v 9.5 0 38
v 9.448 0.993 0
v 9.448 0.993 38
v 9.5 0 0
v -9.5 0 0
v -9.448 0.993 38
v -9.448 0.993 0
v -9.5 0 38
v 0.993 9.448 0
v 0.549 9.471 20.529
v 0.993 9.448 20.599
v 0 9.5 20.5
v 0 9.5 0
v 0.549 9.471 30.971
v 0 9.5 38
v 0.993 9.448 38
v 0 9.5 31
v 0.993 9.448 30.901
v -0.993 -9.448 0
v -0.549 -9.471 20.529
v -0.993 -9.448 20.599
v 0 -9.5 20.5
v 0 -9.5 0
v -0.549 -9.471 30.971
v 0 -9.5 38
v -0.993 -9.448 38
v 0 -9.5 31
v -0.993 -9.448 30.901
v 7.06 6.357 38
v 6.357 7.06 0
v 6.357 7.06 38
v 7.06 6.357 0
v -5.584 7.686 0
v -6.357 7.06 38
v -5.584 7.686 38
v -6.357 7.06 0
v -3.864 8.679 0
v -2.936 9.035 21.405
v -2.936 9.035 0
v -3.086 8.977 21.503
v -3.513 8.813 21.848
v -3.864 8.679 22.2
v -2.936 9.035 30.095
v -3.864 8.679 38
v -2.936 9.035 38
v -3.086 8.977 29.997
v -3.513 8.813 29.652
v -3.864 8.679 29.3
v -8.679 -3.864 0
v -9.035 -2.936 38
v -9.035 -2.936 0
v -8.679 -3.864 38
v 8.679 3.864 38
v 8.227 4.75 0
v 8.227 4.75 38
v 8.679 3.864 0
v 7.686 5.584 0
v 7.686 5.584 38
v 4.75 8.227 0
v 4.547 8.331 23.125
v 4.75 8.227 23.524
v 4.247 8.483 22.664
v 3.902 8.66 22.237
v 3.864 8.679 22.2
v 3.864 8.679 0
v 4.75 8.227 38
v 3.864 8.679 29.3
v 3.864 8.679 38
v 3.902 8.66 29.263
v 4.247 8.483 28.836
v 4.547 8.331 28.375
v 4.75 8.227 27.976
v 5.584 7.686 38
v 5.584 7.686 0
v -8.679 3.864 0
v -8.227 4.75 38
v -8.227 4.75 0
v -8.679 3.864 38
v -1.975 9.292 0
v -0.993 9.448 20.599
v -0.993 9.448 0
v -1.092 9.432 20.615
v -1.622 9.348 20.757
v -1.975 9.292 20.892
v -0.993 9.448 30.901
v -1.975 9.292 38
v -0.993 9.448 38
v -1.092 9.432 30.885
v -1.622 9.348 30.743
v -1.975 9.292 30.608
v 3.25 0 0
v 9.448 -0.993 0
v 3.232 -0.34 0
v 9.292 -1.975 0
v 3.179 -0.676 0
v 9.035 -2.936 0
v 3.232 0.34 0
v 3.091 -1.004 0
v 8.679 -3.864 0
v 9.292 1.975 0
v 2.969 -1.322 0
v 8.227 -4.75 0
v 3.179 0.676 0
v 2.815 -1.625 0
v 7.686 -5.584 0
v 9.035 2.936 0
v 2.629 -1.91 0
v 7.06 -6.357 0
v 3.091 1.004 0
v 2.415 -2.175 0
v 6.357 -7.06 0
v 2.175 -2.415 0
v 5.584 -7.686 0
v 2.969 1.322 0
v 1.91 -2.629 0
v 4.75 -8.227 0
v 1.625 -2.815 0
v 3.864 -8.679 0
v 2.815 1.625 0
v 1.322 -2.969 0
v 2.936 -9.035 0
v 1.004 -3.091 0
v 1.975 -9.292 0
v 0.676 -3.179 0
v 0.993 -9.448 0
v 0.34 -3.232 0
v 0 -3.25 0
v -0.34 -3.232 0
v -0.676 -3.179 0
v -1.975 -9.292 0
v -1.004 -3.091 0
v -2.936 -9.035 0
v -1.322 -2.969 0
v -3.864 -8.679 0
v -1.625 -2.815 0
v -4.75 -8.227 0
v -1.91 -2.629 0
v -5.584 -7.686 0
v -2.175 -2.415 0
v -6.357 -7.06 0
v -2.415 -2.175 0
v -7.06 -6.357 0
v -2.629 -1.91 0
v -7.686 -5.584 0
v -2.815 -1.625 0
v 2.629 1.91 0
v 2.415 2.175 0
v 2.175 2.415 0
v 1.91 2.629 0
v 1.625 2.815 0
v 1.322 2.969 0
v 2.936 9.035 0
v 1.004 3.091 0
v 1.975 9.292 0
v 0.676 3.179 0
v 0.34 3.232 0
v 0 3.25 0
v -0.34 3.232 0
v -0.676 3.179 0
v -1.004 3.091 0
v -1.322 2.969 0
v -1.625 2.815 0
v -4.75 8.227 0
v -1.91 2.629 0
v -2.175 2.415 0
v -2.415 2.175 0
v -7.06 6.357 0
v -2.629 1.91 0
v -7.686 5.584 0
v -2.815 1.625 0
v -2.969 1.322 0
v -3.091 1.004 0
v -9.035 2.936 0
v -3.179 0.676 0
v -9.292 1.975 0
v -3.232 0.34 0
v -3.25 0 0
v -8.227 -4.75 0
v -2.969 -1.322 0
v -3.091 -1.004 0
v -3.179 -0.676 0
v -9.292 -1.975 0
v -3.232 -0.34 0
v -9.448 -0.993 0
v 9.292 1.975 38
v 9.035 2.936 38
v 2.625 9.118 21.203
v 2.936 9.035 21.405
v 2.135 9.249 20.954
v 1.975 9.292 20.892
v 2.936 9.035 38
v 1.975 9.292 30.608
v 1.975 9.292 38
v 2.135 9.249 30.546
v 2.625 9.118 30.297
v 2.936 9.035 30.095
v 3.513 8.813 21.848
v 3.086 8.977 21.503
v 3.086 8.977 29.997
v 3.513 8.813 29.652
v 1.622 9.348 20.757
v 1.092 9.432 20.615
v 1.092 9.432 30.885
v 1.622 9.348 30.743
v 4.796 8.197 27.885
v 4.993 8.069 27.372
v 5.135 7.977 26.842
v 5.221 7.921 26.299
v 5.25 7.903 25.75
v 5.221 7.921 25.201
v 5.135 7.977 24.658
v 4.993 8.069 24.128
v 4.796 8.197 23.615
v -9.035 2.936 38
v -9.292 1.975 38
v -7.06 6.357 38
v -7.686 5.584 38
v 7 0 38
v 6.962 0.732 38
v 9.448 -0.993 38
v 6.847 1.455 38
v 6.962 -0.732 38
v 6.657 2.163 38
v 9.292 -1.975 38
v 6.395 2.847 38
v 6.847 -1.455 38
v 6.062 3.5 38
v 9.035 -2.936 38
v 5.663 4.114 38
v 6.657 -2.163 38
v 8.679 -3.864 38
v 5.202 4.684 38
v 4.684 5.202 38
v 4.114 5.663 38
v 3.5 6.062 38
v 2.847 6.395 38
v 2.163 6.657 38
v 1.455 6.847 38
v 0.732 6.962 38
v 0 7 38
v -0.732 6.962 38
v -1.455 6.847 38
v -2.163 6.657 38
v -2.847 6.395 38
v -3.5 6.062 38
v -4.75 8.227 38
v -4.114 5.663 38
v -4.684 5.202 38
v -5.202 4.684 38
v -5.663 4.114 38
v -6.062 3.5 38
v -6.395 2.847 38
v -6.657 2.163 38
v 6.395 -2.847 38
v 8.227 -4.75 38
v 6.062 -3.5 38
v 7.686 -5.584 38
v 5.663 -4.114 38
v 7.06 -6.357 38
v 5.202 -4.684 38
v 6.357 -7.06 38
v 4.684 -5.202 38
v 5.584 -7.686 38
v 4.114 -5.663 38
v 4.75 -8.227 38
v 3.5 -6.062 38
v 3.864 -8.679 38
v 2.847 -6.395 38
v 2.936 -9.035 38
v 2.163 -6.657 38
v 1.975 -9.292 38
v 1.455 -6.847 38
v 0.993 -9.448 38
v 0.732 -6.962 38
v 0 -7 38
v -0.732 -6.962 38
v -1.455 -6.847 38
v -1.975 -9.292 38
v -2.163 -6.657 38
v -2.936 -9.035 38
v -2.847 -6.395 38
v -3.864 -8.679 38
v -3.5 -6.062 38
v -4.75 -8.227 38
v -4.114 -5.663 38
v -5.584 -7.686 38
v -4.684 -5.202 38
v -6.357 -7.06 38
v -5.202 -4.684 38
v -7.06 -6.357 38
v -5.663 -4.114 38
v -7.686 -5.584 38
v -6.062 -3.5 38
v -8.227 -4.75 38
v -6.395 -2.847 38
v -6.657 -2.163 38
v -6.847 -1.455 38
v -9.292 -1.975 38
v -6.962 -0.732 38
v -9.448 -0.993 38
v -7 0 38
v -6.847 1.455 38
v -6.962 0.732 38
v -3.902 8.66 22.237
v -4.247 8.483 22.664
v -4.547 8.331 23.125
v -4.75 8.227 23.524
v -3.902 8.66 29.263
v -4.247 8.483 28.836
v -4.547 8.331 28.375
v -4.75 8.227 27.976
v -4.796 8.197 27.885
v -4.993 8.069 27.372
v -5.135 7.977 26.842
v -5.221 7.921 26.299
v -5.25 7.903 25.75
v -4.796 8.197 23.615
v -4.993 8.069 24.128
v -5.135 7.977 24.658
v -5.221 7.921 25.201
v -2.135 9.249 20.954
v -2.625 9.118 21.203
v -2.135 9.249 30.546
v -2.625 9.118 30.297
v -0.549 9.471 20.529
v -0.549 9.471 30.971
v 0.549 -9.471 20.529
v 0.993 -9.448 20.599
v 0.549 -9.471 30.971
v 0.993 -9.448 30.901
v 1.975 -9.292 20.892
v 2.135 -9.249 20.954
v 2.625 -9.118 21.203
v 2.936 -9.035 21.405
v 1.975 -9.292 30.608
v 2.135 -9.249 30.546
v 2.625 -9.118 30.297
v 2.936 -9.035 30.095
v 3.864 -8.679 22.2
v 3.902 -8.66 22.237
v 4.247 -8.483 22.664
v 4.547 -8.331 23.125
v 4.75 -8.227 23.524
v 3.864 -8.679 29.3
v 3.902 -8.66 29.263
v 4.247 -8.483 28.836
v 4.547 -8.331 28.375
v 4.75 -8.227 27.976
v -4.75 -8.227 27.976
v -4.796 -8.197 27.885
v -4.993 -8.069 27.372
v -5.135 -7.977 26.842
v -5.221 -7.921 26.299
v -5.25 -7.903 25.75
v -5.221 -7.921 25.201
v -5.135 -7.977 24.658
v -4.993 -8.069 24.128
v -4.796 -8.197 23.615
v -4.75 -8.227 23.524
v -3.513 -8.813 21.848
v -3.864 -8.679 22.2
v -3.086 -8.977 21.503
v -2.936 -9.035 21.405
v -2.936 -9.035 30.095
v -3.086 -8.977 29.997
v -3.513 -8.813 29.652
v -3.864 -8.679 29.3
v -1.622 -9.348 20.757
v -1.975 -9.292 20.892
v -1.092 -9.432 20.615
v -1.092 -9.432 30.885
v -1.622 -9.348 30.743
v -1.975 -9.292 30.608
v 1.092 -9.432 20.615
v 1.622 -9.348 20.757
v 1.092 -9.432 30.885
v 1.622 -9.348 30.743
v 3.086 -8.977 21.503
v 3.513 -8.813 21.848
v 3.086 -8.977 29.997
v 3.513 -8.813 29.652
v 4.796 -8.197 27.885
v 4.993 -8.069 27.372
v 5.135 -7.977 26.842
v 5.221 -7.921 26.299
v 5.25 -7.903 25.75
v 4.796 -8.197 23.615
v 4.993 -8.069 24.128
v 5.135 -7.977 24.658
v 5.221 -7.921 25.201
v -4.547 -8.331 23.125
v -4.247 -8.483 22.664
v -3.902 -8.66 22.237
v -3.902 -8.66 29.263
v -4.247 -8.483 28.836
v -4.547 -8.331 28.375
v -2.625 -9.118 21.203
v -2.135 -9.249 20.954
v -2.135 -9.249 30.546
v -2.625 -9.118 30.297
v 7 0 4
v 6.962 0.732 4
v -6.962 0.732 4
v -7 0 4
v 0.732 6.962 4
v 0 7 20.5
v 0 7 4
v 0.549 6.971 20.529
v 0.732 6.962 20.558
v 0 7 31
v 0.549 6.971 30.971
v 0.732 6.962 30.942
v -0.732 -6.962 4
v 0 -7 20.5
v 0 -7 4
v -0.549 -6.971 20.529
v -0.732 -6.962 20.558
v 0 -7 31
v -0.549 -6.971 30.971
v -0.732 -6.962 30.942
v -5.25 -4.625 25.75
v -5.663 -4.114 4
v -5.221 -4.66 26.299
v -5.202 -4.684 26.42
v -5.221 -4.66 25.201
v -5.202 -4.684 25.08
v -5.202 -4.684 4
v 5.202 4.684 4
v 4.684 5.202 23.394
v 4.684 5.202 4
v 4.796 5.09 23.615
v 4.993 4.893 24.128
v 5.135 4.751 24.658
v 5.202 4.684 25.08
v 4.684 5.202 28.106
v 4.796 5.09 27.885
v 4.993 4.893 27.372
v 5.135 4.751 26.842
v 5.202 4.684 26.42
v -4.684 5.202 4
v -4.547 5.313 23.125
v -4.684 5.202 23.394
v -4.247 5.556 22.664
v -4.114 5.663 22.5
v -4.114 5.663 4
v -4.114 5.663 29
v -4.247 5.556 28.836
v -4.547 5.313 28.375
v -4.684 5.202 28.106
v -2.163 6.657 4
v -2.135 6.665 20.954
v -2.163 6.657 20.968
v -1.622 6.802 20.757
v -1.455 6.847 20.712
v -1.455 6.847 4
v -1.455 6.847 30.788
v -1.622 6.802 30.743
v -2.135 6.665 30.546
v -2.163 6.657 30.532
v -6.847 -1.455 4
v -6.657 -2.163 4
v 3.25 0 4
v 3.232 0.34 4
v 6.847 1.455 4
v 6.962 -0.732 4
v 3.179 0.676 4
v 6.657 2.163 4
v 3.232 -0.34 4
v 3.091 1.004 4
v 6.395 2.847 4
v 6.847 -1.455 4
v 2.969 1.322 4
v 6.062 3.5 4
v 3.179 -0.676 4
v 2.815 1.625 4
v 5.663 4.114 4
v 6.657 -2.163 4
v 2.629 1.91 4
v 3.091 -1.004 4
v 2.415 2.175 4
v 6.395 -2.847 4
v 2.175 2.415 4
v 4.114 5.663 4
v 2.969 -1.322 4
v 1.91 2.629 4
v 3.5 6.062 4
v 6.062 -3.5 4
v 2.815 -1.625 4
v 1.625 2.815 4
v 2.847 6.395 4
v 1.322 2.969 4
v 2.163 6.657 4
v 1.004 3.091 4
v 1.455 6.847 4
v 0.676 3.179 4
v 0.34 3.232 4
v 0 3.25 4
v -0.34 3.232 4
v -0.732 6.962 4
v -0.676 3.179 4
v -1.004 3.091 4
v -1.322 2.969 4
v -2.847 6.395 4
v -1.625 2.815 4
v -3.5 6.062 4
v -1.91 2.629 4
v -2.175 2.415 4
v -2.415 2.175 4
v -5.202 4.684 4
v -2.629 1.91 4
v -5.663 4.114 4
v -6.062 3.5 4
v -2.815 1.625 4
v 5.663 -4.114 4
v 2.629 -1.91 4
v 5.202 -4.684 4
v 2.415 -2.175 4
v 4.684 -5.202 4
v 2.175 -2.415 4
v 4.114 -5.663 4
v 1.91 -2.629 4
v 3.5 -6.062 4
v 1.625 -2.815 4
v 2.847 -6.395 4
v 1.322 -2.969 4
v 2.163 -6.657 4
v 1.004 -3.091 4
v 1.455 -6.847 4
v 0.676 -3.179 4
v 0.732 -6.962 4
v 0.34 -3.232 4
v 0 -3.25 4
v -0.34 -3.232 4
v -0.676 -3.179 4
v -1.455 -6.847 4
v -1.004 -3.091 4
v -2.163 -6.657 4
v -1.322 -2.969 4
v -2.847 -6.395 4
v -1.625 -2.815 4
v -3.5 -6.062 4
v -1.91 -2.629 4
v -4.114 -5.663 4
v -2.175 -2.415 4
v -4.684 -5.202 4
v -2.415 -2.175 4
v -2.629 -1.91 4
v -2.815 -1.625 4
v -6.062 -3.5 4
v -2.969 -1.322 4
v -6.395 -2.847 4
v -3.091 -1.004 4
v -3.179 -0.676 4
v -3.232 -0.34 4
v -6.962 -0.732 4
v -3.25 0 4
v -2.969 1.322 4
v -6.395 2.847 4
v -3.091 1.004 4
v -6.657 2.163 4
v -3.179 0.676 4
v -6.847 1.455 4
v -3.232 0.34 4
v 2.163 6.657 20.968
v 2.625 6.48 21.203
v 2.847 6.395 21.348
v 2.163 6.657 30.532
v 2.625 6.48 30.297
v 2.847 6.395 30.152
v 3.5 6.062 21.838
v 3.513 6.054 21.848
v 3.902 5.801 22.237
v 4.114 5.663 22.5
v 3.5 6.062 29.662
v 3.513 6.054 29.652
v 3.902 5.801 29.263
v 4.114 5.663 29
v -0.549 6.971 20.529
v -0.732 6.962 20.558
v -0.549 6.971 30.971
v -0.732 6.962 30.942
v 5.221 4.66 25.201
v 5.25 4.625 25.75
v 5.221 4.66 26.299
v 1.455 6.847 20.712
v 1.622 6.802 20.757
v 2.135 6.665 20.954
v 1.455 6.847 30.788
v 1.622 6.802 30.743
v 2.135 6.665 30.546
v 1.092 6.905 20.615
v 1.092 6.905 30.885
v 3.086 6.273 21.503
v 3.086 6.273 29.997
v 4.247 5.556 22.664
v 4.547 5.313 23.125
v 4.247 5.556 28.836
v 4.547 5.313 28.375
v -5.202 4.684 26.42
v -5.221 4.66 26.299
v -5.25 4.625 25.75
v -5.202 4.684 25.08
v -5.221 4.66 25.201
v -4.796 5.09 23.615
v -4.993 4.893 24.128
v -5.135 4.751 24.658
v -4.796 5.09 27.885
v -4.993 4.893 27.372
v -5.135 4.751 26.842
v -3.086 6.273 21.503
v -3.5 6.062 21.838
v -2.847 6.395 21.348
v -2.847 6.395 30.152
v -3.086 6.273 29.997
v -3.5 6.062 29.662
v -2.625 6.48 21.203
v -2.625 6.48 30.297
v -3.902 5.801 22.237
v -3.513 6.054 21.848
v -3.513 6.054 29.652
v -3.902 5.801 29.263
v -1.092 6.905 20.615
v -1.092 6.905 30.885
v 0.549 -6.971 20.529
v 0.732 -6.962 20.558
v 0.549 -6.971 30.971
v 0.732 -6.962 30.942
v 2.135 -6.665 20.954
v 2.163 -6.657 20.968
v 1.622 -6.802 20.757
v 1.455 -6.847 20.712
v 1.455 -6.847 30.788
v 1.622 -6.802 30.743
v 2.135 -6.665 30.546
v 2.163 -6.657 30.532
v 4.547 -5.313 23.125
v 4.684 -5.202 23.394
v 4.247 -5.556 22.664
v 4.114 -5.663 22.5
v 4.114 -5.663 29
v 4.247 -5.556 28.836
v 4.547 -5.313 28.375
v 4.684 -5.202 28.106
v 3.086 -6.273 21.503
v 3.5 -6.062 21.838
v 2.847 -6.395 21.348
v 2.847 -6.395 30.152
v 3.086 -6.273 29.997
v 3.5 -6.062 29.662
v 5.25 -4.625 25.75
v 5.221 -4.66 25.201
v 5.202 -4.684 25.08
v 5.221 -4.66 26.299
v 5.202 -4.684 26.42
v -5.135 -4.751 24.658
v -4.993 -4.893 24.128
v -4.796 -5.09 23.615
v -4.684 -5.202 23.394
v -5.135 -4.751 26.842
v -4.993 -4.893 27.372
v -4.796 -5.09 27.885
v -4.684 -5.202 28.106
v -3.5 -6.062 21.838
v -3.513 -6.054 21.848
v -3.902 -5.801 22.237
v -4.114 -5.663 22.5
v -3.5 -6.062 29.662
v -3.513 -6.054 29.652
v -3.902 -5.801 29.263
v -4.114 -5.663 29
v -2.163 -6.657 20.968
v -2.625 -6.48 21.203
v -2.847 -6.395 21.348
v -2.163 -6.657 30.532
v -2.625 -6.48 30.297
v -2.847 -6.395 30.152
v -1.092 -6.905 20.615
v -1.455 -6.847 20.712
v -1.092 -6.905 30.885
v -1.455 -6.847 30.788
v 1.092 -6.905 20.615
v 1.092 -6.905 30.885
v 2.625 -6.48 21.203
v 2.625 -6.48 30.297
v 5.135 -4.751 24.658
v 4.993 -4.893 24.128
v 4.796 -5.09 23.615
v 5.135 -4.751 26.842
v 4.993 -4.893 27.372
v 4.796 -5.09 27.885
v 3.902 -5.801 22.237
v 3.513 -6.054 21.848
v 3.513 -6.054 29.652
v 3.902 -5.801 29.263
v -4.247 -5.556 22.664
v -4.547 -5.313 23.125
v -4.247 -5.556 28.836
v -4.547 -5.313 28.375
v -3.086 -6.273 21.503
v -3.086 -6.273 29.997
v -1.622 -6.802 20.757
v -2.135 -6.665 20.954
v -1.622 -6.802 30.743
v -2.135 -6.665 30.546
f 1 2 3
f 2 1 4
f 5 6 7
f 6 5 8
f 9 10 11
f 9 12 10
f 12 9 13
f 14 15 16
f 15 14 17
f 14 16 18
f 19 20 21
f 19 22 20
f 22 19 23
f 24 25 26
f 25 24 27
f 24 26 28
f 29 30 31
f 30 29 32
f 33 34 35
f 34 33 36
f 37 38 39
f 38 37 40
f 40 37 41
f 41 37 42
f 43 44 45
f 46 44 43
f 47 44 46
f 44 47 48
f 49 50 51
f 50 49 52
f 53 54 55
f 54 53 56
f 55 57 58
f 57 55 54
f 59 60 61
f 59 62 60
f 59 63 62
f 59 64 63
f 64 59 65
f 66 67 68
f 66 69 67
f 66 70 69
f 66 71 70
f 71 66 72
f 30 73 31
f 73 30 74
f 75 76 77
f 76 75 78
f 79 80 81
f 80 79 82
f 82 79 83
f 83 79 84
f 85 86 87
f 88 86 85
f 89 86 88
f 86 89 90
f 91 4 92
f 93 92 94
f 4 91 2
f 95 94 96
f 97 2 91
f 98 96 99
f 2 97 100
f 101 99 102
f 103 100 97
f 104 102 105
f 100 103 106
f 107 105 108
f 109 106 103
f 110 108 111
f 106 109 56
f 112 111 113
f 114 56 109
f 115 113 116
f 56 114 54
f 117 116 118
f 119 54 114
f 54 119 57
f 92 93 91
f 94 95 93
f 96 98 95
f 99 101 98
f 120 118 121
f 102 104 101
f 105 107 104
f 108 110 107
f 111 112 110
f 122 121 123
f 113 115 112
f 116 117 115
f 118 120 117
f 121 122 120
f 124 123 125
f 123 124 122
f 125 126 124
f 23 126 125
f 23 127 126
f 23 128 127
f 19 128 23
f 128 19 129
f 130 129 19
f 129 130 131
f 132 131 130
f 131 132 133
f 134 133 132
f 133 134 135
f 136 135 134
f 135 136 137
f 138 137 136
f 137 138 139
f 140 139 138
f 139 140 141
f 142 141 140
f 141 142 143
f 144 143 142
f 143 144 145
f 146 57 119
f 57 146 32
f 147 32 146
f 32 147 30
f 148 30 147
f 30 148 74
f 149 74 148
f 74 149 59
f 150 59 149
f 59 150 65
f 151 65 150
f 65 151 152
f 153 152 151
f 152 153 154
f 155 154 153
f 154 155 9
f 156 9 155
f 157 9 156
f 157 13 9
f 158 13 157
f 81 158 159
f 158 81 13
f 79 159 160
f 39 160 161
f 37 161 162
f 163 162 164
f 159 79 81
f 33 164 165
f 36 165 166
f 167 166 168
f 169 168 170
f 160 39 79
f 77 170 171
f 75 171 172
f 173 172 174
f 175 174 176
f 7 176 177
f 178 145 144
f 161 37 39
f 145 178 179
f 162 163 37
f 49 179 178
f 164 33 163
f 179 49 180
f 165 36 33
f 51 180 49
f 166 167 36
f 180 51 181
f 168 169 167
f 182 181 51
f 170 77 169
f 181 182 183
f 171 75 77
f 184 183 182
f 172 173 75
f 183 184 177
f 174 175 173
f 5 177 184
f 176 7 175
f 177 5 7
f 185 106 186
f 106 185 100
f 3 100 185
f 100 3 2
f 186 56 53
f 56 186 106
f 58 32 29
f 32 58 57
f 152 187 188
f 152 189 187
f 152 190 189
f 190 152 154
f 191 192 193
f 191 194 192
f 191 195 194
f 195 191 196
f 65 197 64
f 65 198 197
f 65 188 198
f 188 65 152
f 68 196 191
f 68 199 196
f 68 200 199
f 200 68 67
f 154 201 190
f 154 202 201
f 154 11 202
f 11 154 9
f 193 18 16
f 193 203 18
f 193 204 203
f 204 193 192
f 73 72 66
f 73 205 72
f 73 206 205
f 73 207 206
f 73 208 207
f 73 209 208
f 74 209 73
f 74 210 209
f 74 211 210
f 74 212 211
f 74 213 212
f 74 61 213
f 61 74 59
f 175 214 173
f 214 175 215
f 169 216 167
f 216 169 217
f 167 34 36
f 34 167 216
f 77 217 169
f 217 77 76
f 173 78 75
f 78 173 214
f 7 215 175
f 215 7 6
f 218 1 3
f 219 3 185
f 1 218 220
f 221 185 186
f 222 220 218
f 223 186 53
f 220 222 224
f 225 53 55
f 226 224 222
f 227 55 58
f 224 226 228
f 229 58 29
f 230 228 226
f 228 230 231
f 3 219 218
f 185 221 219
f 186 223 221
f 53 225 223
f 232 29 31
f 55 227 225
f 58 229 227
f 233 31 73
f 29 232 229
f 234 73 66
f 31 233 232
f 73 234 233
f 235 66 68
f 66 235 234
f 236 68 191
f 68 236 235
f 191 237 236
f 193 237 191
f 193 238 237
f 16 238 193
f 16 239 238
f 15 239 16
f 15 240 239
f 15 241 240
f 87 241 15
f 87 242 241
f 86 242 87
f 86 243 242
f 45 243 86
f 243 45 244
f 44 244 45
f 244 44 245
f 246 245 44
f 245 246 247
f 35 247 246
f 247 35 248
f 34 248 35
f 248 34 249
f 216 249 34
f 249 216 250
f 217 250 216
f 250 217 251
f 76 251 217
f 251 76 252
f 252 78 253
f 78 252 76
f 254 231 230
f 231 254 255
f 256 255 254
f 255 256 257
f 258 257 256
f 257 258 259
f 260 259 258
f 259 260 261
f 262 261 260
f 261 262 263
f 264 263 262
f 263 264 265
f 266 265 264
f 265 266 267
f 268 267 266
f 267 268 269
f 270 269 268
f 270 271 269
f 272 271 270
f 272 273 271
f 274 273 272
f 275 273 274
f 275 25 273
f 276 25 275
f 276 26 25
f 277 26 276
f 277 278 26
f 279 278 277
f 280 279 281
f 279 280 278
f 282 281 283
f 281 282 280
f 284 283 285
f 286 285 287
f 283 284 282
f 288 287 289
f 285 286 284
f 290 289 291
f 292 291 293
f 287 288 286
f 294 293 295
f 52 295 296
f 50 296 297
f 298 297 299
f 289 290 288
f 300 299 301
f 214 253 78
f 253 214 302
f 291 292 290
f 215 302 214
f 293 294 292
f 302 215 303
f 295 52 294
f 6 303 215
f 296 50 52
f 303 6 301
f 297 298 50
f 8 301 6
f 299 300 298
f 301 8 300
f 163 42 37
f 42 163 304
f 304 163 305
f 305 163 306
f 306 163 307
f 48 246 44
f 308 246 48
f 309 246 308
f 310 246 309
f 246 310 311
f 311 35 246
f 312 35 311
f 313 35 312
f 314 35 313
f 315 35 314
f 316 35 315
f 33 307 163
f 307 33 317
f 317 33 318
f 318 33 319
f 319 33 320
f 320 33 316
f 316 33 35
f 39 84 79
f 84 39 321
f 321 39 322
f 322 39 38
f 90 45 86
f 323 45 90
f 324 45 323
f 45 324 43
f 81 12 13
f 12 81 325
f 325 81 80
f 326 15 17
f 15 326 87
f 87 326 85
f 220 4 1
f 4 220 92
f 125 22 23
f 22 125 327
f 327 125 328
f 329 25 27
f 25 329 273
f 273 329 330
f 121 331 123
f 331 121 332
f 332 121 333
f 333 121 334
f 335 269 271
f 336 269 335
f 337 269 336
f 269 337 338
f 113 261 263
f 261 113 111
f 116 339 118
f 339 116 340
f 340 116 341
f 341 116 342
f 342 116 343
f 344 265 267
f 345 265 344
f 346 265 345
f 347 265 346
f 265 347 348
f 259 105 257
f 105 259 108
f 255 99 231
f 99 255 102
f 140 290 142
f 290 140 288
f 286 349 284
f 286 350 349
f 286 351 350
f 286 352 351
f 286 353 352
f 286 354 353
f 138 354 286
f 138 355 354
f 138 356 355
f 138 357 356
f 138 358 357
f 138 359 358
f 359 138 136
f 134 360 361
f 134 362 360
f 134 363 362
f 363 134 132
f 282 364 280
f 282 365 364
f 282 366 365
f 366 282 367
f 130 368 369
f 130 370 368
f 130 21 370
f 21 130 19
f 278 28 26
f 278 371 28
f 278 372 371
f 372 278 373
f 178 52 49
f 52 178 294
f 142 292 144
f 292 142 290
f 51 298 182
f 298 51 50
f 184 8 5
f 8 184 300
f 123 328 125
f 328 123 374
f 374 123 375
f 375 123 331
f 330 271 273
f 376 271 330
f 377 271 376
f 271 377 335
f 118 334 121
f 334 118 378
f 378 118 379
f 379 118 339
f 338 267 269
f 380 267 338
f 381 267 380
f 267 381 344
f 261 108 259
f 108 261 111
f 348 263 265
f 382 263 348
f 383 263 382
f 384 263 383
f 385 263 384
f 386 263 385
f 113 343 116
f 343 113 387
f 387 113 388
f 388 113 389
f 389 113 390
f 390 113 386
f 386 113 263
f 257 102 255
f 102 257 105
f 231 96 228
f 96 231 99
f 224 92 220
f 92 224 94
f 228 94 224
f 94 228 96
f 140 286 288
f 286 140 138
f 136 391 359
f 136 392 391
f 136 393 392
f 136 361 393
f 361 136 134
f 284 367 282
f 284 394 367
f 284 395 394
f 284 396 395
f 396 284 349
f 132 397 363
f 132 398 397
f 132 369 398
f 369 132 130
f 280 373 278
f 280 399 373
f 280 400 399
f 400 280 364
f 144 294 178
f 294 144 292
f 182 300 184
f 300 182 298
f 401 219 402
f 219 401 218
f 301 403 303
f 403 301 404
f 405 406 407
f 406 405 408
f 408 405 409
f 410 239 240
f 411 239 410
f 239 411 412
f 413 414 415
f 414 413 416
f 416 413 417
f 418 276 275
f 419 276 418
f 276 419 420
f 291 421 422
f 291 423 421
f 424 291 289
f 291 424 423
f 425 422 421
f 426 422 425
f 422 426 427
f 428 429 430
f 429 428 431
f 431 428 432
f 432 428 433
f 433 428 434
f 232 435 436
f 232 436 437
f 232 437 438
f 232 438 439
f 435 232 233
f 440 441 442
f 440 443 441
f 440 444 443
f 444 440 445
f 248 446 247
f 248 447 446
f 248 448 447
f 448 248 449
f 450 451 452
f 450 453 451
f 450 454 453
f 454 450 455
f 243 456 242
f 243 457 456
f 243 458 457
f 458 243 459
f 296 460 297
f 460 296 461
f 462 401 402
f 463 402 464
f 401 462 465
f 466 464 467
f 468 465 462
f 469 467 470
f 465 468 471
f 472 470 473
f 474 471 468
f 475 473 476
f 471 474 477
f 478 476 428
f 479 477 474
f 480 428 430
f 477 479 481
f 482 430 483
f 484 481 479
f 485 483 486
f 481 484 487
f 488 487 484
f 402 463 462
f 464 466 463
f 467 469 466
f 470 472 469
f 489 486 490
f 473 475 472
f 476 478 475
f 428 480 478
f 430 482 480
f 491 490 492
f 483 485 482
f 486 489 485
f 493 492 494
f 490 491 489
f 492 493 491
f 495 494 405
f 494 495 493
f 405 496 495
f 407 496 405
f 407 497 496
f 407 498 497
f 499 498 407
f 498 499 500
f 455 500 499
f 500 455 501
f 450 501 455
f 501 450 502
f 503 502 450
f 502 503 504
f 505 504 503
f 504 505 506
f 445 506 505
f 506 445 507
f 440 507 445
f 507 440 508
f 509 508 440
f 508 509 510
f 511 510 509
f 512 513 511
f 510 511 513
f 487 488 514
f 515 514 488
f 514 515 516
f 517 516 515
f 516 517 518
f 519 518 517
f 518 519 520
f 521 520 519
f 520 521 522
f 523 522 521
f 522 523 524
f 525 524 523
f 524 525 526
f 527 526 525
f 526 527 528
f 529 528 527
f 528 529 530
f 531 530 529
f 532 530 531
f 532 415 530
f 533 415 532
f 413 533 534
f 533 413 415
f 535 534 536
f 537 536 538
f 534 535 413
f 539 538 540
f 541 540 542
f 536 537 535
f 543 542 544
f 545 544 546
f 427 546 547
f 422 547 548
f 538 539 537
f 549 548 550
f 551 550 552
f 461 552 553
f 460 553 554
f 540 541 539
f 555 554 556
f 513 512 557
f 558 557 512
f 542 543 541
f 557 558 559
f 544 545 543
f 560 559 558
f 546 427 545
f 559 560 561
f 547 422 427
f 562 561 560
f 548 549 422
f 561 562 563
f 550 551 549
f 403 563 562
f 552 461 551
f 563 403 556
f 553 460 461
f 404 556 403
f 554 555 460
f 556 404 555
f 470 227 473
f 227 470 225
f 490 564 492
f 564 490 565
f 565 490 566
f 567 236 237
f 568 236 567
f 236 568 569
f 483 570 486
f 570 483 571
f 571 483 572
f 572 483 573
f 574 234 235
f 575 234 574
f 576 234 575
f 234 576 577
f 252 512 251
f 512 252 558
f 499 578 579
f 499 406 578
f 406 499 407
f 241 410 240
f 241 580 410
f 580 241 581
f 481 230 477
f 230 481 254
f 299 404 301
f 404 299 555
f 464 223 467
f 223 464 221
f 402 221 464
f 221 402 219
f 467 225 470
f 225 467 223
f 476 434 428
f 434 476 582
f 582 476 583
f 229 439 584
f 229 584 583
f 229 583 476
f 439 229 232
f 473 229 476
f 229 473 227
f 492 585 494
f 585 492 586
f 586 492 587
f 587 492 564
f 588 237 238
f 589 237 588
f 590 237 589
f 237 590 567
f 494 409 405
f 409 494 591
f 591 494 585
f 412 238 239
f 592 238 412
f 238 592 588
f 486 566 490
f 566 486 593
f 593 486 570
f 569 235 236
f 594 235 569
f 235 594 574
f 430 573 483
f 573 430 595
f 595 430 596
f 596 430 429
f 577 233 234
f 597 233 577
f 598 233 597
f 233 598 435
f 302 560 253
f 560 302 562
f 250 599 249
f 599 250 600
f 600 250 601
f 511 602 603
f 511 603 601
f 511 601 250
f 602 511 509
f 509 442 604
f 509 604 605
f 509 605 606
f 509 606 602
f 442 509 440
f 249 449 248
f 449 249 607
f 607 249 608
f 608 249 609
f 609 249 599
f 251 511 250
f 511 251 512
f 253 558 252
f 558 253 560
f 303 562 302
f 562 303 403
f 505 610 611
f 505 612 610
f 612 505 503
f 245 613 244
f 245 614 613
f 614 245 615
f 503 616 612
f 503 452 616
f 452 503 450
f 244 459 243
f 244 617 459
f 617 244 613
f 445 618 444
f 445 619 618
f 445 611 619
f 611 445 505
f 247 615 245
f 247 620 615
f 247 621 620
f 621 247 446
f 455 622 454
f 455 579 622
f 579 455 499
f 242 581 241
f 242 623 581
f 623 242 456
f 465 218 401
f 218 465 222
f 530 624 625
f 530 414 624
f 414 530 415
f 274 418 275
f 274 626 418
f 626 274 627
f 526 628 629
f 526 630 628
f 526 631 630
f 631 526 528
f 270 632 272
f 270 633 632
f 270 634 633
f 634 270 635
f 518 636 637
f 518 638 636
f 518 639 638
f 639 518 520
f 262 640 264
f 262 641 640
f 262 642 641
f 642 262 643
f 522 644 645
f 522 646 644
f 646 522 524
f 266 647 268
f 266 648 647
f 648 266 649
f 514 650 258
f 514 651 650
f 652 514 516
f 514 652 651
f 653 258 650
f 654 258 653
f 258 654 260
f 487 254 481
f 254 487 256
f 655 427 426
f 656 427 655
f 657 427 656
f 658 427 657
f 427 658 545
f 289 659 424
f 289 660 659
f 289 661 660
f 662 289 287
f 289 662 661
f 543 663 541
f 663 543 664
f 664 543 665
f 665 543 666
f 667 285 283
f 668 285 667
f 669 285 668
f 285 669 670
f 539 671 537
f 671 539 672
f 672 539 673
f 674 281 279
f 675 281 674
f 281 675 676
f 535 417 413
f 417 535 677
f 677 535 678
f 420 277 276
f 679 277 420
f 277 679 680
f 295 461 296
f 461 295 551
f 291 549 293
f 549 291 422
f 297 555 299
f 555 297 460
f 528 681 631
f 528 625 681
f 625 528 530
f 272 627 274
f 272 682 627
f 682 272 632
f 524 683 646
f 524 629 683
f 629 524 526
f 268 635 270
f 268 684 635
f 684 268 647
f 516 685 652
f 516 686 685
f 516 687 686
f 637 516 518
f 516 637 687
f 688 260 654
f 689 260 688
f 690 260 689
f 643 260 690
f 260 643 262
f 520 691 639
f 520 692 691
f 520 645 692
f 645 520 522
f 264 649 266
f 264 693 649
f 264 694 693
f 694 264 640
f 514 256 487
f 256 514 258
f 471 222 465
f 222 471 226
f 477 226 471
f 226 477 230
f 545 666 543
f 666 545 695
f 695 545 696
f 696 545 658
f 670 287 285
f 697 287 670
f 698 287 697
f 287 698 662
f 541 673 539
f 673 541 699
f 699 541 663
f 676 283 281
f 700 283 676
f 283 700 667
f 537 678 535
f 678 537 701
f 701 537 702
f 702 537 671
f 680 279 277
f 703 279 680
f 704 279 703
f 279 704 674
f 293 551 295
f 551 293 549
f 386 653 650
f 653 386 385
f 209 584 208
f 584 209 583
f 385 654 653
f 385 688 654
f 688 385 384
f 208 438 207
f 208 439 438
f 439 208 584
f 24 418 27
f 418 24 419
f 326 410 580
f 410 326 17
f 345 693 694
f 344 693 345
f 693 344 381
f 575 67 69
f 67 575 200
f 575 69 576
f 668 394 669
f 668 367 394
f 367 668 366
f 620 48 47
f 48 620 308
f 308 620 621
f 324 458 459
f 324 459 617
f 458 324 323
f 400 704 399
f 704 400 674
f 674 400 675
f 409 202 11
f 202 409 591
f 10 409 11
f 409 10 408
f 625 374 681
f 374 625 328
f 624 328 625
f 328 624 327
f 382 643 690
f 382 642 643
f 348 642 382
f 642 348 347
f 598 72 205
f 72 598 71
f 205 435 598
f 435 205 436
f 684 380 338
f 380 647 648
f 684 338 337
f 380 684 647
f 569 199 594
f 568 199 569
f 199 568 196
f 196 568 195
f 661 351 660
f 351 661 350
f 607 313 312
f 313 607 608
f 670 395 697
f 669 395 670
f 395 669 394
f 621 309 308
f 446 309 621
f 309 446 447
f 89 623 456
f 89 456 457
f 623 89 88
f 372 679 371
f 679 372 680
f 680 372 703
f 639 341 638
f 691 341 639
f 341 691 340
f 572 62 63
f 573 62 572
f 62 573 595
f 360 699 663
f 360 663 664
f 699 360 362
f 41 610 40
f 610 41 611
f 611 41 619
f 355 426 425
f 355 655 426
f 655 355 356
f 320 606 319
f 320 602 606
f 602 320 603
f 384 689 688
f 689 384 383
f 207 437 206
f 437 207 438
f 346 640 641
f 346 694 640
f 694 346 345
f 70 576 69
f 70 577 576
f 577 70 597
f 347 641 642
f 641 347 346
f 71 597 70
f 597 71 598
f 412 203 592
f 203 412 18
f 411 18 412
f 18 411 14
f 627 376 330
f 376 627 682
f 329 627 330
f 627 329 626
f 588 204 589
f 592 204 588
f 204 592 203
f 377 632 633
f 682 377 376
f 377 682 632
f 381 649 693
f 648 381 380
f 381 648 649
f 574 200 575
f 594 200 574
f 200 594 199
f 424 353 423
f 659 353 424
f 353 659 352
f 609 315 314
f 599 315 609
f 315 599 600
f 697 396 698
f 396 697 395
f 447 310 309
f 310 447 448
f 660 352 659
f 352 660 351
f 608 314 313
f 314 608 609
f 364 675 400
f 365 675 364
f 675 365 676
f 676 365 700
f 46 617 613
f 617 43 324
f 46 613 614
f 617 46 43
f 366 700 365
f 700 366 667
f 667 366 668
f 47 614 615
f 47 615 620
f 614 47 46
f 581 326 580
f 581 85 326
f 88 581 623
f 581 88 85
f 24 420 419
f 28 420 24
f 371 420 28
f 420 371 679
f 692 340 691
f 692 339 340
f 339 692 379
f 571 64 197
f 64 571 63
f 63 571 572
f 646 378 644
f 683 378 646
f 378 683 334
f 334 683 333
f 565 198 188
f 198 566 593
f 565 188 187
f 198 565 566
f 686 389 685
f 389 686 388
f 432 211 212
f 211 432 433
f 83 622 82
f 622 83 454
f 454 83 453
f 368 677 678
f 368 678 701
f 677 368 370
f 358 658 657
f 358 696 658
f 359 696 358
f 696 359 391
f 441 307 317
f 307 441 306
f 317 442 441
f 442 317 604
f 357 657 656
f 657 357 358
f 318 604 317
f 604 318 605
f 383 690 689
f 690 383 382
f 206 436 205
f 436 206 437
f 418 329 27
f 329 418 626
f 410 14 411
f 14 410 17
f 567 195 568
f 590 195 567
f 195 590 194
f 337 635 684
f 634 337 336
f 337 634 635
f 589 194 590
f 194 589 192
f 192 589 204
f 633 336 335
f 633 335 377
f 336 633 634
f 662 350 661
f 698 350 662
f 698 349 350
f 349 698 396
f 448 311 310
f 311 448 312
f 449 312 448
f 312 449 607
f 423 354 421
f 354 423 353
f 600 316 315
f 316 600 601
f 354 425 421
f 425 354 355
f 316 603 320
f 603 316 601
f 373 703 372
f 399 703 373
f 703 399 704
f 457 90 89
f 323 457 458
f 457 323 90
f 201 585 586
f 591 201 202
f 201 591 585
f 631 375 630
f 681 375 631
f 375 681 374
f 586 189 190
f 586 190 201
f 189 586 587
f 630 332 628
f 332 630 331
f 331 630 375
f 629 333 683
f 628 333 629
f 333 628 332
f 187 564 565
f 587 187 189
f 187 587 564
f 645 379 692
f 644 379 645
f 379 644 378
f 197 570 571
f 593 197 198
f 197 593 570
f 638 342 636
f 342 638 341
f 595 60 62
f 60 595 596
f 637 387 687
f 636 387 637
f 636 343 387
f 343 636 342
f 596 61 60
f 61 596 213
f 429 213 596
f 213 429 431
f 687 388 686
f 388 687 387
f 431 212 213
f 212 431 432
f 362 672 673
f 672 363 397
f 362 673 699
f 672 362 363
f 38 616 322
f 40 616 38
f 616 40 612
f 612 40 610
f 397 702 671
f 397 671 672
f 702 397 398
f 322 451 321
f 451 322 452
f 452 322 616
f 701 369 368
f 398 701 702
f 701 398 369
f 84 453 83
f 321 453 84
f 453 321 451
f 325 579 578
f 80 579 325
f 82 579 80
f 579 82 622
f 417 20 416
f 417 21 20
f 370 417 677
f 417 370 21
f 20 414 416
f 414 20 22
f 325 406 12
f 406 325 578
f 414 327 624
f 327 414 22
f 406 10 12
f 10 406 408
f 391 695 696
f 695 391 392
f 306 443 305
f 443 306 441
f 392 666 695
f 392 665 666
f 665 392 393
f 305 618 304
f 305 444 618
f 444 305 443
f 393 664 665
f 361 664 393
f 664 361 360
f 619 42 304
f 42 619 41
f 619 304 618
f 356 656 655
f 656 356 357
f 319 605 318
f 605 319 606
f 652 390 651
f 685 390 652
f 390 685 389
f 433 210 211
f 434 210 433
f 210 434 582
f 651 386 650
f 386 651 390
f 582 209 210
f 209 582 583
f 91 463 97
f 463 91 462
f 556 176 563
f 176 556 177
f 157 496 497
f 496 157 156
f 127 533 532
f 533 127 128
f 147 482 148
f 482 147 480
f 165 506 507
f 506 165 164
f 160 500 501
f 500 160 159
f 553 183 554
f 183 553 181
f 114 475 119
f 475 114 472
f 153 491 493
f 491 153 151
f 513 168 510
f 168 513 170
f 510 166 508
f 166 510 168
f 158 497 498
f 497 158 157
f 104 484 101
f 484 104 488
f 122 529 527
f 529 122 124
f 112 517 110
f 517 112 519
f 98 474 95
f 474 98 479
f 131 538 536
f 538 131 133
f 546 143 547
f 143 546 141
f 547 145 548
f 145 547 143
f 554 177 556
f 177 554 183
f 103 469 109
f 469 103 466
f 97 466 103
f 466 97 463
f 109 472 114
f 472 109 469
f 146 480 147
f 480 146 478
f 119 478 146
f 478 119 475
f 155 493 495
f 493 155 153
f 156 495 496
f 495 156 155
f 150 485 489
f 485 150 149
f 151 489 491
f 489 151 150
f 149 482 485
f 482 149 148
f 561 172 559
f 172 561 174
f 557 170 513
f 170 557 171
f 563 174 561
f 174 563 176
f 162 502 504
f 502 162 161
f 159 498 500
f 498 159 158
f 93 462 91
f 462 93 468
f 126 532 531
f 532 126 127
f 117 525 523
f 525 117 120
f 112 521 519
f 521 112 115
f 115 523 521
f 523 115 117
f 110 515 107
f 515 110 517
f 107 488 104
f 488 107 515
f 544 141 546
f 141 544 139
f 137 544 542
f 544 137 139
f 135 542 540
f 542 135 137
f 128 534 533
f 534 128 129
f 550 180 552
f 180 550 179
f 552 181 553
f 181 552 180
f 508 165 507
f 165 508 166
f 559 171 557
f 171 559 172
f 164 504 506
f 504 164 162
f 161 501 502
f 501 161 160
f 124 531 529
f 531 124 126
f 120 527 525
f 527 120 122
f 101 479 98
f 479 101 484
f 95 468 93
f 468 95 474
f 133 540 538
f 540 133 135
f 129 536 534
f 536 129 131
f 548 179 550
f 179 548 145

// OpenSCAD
// Kuechenstangenhalerung

$fn=60;

module rohr() {
    difference() {
        cylinder(d=19,h=38);
        translate([0,0,4])
        cylinder(d=14,h=40);
    }
}

difference() {
    rohr();
    
    rotate([90,0,0])
    translate([0,38-7-5.25,0])
    cylinder(d=10.5,h=30,center=true);
    
    cylinder(d=6.5,h=30,center=true);
}
